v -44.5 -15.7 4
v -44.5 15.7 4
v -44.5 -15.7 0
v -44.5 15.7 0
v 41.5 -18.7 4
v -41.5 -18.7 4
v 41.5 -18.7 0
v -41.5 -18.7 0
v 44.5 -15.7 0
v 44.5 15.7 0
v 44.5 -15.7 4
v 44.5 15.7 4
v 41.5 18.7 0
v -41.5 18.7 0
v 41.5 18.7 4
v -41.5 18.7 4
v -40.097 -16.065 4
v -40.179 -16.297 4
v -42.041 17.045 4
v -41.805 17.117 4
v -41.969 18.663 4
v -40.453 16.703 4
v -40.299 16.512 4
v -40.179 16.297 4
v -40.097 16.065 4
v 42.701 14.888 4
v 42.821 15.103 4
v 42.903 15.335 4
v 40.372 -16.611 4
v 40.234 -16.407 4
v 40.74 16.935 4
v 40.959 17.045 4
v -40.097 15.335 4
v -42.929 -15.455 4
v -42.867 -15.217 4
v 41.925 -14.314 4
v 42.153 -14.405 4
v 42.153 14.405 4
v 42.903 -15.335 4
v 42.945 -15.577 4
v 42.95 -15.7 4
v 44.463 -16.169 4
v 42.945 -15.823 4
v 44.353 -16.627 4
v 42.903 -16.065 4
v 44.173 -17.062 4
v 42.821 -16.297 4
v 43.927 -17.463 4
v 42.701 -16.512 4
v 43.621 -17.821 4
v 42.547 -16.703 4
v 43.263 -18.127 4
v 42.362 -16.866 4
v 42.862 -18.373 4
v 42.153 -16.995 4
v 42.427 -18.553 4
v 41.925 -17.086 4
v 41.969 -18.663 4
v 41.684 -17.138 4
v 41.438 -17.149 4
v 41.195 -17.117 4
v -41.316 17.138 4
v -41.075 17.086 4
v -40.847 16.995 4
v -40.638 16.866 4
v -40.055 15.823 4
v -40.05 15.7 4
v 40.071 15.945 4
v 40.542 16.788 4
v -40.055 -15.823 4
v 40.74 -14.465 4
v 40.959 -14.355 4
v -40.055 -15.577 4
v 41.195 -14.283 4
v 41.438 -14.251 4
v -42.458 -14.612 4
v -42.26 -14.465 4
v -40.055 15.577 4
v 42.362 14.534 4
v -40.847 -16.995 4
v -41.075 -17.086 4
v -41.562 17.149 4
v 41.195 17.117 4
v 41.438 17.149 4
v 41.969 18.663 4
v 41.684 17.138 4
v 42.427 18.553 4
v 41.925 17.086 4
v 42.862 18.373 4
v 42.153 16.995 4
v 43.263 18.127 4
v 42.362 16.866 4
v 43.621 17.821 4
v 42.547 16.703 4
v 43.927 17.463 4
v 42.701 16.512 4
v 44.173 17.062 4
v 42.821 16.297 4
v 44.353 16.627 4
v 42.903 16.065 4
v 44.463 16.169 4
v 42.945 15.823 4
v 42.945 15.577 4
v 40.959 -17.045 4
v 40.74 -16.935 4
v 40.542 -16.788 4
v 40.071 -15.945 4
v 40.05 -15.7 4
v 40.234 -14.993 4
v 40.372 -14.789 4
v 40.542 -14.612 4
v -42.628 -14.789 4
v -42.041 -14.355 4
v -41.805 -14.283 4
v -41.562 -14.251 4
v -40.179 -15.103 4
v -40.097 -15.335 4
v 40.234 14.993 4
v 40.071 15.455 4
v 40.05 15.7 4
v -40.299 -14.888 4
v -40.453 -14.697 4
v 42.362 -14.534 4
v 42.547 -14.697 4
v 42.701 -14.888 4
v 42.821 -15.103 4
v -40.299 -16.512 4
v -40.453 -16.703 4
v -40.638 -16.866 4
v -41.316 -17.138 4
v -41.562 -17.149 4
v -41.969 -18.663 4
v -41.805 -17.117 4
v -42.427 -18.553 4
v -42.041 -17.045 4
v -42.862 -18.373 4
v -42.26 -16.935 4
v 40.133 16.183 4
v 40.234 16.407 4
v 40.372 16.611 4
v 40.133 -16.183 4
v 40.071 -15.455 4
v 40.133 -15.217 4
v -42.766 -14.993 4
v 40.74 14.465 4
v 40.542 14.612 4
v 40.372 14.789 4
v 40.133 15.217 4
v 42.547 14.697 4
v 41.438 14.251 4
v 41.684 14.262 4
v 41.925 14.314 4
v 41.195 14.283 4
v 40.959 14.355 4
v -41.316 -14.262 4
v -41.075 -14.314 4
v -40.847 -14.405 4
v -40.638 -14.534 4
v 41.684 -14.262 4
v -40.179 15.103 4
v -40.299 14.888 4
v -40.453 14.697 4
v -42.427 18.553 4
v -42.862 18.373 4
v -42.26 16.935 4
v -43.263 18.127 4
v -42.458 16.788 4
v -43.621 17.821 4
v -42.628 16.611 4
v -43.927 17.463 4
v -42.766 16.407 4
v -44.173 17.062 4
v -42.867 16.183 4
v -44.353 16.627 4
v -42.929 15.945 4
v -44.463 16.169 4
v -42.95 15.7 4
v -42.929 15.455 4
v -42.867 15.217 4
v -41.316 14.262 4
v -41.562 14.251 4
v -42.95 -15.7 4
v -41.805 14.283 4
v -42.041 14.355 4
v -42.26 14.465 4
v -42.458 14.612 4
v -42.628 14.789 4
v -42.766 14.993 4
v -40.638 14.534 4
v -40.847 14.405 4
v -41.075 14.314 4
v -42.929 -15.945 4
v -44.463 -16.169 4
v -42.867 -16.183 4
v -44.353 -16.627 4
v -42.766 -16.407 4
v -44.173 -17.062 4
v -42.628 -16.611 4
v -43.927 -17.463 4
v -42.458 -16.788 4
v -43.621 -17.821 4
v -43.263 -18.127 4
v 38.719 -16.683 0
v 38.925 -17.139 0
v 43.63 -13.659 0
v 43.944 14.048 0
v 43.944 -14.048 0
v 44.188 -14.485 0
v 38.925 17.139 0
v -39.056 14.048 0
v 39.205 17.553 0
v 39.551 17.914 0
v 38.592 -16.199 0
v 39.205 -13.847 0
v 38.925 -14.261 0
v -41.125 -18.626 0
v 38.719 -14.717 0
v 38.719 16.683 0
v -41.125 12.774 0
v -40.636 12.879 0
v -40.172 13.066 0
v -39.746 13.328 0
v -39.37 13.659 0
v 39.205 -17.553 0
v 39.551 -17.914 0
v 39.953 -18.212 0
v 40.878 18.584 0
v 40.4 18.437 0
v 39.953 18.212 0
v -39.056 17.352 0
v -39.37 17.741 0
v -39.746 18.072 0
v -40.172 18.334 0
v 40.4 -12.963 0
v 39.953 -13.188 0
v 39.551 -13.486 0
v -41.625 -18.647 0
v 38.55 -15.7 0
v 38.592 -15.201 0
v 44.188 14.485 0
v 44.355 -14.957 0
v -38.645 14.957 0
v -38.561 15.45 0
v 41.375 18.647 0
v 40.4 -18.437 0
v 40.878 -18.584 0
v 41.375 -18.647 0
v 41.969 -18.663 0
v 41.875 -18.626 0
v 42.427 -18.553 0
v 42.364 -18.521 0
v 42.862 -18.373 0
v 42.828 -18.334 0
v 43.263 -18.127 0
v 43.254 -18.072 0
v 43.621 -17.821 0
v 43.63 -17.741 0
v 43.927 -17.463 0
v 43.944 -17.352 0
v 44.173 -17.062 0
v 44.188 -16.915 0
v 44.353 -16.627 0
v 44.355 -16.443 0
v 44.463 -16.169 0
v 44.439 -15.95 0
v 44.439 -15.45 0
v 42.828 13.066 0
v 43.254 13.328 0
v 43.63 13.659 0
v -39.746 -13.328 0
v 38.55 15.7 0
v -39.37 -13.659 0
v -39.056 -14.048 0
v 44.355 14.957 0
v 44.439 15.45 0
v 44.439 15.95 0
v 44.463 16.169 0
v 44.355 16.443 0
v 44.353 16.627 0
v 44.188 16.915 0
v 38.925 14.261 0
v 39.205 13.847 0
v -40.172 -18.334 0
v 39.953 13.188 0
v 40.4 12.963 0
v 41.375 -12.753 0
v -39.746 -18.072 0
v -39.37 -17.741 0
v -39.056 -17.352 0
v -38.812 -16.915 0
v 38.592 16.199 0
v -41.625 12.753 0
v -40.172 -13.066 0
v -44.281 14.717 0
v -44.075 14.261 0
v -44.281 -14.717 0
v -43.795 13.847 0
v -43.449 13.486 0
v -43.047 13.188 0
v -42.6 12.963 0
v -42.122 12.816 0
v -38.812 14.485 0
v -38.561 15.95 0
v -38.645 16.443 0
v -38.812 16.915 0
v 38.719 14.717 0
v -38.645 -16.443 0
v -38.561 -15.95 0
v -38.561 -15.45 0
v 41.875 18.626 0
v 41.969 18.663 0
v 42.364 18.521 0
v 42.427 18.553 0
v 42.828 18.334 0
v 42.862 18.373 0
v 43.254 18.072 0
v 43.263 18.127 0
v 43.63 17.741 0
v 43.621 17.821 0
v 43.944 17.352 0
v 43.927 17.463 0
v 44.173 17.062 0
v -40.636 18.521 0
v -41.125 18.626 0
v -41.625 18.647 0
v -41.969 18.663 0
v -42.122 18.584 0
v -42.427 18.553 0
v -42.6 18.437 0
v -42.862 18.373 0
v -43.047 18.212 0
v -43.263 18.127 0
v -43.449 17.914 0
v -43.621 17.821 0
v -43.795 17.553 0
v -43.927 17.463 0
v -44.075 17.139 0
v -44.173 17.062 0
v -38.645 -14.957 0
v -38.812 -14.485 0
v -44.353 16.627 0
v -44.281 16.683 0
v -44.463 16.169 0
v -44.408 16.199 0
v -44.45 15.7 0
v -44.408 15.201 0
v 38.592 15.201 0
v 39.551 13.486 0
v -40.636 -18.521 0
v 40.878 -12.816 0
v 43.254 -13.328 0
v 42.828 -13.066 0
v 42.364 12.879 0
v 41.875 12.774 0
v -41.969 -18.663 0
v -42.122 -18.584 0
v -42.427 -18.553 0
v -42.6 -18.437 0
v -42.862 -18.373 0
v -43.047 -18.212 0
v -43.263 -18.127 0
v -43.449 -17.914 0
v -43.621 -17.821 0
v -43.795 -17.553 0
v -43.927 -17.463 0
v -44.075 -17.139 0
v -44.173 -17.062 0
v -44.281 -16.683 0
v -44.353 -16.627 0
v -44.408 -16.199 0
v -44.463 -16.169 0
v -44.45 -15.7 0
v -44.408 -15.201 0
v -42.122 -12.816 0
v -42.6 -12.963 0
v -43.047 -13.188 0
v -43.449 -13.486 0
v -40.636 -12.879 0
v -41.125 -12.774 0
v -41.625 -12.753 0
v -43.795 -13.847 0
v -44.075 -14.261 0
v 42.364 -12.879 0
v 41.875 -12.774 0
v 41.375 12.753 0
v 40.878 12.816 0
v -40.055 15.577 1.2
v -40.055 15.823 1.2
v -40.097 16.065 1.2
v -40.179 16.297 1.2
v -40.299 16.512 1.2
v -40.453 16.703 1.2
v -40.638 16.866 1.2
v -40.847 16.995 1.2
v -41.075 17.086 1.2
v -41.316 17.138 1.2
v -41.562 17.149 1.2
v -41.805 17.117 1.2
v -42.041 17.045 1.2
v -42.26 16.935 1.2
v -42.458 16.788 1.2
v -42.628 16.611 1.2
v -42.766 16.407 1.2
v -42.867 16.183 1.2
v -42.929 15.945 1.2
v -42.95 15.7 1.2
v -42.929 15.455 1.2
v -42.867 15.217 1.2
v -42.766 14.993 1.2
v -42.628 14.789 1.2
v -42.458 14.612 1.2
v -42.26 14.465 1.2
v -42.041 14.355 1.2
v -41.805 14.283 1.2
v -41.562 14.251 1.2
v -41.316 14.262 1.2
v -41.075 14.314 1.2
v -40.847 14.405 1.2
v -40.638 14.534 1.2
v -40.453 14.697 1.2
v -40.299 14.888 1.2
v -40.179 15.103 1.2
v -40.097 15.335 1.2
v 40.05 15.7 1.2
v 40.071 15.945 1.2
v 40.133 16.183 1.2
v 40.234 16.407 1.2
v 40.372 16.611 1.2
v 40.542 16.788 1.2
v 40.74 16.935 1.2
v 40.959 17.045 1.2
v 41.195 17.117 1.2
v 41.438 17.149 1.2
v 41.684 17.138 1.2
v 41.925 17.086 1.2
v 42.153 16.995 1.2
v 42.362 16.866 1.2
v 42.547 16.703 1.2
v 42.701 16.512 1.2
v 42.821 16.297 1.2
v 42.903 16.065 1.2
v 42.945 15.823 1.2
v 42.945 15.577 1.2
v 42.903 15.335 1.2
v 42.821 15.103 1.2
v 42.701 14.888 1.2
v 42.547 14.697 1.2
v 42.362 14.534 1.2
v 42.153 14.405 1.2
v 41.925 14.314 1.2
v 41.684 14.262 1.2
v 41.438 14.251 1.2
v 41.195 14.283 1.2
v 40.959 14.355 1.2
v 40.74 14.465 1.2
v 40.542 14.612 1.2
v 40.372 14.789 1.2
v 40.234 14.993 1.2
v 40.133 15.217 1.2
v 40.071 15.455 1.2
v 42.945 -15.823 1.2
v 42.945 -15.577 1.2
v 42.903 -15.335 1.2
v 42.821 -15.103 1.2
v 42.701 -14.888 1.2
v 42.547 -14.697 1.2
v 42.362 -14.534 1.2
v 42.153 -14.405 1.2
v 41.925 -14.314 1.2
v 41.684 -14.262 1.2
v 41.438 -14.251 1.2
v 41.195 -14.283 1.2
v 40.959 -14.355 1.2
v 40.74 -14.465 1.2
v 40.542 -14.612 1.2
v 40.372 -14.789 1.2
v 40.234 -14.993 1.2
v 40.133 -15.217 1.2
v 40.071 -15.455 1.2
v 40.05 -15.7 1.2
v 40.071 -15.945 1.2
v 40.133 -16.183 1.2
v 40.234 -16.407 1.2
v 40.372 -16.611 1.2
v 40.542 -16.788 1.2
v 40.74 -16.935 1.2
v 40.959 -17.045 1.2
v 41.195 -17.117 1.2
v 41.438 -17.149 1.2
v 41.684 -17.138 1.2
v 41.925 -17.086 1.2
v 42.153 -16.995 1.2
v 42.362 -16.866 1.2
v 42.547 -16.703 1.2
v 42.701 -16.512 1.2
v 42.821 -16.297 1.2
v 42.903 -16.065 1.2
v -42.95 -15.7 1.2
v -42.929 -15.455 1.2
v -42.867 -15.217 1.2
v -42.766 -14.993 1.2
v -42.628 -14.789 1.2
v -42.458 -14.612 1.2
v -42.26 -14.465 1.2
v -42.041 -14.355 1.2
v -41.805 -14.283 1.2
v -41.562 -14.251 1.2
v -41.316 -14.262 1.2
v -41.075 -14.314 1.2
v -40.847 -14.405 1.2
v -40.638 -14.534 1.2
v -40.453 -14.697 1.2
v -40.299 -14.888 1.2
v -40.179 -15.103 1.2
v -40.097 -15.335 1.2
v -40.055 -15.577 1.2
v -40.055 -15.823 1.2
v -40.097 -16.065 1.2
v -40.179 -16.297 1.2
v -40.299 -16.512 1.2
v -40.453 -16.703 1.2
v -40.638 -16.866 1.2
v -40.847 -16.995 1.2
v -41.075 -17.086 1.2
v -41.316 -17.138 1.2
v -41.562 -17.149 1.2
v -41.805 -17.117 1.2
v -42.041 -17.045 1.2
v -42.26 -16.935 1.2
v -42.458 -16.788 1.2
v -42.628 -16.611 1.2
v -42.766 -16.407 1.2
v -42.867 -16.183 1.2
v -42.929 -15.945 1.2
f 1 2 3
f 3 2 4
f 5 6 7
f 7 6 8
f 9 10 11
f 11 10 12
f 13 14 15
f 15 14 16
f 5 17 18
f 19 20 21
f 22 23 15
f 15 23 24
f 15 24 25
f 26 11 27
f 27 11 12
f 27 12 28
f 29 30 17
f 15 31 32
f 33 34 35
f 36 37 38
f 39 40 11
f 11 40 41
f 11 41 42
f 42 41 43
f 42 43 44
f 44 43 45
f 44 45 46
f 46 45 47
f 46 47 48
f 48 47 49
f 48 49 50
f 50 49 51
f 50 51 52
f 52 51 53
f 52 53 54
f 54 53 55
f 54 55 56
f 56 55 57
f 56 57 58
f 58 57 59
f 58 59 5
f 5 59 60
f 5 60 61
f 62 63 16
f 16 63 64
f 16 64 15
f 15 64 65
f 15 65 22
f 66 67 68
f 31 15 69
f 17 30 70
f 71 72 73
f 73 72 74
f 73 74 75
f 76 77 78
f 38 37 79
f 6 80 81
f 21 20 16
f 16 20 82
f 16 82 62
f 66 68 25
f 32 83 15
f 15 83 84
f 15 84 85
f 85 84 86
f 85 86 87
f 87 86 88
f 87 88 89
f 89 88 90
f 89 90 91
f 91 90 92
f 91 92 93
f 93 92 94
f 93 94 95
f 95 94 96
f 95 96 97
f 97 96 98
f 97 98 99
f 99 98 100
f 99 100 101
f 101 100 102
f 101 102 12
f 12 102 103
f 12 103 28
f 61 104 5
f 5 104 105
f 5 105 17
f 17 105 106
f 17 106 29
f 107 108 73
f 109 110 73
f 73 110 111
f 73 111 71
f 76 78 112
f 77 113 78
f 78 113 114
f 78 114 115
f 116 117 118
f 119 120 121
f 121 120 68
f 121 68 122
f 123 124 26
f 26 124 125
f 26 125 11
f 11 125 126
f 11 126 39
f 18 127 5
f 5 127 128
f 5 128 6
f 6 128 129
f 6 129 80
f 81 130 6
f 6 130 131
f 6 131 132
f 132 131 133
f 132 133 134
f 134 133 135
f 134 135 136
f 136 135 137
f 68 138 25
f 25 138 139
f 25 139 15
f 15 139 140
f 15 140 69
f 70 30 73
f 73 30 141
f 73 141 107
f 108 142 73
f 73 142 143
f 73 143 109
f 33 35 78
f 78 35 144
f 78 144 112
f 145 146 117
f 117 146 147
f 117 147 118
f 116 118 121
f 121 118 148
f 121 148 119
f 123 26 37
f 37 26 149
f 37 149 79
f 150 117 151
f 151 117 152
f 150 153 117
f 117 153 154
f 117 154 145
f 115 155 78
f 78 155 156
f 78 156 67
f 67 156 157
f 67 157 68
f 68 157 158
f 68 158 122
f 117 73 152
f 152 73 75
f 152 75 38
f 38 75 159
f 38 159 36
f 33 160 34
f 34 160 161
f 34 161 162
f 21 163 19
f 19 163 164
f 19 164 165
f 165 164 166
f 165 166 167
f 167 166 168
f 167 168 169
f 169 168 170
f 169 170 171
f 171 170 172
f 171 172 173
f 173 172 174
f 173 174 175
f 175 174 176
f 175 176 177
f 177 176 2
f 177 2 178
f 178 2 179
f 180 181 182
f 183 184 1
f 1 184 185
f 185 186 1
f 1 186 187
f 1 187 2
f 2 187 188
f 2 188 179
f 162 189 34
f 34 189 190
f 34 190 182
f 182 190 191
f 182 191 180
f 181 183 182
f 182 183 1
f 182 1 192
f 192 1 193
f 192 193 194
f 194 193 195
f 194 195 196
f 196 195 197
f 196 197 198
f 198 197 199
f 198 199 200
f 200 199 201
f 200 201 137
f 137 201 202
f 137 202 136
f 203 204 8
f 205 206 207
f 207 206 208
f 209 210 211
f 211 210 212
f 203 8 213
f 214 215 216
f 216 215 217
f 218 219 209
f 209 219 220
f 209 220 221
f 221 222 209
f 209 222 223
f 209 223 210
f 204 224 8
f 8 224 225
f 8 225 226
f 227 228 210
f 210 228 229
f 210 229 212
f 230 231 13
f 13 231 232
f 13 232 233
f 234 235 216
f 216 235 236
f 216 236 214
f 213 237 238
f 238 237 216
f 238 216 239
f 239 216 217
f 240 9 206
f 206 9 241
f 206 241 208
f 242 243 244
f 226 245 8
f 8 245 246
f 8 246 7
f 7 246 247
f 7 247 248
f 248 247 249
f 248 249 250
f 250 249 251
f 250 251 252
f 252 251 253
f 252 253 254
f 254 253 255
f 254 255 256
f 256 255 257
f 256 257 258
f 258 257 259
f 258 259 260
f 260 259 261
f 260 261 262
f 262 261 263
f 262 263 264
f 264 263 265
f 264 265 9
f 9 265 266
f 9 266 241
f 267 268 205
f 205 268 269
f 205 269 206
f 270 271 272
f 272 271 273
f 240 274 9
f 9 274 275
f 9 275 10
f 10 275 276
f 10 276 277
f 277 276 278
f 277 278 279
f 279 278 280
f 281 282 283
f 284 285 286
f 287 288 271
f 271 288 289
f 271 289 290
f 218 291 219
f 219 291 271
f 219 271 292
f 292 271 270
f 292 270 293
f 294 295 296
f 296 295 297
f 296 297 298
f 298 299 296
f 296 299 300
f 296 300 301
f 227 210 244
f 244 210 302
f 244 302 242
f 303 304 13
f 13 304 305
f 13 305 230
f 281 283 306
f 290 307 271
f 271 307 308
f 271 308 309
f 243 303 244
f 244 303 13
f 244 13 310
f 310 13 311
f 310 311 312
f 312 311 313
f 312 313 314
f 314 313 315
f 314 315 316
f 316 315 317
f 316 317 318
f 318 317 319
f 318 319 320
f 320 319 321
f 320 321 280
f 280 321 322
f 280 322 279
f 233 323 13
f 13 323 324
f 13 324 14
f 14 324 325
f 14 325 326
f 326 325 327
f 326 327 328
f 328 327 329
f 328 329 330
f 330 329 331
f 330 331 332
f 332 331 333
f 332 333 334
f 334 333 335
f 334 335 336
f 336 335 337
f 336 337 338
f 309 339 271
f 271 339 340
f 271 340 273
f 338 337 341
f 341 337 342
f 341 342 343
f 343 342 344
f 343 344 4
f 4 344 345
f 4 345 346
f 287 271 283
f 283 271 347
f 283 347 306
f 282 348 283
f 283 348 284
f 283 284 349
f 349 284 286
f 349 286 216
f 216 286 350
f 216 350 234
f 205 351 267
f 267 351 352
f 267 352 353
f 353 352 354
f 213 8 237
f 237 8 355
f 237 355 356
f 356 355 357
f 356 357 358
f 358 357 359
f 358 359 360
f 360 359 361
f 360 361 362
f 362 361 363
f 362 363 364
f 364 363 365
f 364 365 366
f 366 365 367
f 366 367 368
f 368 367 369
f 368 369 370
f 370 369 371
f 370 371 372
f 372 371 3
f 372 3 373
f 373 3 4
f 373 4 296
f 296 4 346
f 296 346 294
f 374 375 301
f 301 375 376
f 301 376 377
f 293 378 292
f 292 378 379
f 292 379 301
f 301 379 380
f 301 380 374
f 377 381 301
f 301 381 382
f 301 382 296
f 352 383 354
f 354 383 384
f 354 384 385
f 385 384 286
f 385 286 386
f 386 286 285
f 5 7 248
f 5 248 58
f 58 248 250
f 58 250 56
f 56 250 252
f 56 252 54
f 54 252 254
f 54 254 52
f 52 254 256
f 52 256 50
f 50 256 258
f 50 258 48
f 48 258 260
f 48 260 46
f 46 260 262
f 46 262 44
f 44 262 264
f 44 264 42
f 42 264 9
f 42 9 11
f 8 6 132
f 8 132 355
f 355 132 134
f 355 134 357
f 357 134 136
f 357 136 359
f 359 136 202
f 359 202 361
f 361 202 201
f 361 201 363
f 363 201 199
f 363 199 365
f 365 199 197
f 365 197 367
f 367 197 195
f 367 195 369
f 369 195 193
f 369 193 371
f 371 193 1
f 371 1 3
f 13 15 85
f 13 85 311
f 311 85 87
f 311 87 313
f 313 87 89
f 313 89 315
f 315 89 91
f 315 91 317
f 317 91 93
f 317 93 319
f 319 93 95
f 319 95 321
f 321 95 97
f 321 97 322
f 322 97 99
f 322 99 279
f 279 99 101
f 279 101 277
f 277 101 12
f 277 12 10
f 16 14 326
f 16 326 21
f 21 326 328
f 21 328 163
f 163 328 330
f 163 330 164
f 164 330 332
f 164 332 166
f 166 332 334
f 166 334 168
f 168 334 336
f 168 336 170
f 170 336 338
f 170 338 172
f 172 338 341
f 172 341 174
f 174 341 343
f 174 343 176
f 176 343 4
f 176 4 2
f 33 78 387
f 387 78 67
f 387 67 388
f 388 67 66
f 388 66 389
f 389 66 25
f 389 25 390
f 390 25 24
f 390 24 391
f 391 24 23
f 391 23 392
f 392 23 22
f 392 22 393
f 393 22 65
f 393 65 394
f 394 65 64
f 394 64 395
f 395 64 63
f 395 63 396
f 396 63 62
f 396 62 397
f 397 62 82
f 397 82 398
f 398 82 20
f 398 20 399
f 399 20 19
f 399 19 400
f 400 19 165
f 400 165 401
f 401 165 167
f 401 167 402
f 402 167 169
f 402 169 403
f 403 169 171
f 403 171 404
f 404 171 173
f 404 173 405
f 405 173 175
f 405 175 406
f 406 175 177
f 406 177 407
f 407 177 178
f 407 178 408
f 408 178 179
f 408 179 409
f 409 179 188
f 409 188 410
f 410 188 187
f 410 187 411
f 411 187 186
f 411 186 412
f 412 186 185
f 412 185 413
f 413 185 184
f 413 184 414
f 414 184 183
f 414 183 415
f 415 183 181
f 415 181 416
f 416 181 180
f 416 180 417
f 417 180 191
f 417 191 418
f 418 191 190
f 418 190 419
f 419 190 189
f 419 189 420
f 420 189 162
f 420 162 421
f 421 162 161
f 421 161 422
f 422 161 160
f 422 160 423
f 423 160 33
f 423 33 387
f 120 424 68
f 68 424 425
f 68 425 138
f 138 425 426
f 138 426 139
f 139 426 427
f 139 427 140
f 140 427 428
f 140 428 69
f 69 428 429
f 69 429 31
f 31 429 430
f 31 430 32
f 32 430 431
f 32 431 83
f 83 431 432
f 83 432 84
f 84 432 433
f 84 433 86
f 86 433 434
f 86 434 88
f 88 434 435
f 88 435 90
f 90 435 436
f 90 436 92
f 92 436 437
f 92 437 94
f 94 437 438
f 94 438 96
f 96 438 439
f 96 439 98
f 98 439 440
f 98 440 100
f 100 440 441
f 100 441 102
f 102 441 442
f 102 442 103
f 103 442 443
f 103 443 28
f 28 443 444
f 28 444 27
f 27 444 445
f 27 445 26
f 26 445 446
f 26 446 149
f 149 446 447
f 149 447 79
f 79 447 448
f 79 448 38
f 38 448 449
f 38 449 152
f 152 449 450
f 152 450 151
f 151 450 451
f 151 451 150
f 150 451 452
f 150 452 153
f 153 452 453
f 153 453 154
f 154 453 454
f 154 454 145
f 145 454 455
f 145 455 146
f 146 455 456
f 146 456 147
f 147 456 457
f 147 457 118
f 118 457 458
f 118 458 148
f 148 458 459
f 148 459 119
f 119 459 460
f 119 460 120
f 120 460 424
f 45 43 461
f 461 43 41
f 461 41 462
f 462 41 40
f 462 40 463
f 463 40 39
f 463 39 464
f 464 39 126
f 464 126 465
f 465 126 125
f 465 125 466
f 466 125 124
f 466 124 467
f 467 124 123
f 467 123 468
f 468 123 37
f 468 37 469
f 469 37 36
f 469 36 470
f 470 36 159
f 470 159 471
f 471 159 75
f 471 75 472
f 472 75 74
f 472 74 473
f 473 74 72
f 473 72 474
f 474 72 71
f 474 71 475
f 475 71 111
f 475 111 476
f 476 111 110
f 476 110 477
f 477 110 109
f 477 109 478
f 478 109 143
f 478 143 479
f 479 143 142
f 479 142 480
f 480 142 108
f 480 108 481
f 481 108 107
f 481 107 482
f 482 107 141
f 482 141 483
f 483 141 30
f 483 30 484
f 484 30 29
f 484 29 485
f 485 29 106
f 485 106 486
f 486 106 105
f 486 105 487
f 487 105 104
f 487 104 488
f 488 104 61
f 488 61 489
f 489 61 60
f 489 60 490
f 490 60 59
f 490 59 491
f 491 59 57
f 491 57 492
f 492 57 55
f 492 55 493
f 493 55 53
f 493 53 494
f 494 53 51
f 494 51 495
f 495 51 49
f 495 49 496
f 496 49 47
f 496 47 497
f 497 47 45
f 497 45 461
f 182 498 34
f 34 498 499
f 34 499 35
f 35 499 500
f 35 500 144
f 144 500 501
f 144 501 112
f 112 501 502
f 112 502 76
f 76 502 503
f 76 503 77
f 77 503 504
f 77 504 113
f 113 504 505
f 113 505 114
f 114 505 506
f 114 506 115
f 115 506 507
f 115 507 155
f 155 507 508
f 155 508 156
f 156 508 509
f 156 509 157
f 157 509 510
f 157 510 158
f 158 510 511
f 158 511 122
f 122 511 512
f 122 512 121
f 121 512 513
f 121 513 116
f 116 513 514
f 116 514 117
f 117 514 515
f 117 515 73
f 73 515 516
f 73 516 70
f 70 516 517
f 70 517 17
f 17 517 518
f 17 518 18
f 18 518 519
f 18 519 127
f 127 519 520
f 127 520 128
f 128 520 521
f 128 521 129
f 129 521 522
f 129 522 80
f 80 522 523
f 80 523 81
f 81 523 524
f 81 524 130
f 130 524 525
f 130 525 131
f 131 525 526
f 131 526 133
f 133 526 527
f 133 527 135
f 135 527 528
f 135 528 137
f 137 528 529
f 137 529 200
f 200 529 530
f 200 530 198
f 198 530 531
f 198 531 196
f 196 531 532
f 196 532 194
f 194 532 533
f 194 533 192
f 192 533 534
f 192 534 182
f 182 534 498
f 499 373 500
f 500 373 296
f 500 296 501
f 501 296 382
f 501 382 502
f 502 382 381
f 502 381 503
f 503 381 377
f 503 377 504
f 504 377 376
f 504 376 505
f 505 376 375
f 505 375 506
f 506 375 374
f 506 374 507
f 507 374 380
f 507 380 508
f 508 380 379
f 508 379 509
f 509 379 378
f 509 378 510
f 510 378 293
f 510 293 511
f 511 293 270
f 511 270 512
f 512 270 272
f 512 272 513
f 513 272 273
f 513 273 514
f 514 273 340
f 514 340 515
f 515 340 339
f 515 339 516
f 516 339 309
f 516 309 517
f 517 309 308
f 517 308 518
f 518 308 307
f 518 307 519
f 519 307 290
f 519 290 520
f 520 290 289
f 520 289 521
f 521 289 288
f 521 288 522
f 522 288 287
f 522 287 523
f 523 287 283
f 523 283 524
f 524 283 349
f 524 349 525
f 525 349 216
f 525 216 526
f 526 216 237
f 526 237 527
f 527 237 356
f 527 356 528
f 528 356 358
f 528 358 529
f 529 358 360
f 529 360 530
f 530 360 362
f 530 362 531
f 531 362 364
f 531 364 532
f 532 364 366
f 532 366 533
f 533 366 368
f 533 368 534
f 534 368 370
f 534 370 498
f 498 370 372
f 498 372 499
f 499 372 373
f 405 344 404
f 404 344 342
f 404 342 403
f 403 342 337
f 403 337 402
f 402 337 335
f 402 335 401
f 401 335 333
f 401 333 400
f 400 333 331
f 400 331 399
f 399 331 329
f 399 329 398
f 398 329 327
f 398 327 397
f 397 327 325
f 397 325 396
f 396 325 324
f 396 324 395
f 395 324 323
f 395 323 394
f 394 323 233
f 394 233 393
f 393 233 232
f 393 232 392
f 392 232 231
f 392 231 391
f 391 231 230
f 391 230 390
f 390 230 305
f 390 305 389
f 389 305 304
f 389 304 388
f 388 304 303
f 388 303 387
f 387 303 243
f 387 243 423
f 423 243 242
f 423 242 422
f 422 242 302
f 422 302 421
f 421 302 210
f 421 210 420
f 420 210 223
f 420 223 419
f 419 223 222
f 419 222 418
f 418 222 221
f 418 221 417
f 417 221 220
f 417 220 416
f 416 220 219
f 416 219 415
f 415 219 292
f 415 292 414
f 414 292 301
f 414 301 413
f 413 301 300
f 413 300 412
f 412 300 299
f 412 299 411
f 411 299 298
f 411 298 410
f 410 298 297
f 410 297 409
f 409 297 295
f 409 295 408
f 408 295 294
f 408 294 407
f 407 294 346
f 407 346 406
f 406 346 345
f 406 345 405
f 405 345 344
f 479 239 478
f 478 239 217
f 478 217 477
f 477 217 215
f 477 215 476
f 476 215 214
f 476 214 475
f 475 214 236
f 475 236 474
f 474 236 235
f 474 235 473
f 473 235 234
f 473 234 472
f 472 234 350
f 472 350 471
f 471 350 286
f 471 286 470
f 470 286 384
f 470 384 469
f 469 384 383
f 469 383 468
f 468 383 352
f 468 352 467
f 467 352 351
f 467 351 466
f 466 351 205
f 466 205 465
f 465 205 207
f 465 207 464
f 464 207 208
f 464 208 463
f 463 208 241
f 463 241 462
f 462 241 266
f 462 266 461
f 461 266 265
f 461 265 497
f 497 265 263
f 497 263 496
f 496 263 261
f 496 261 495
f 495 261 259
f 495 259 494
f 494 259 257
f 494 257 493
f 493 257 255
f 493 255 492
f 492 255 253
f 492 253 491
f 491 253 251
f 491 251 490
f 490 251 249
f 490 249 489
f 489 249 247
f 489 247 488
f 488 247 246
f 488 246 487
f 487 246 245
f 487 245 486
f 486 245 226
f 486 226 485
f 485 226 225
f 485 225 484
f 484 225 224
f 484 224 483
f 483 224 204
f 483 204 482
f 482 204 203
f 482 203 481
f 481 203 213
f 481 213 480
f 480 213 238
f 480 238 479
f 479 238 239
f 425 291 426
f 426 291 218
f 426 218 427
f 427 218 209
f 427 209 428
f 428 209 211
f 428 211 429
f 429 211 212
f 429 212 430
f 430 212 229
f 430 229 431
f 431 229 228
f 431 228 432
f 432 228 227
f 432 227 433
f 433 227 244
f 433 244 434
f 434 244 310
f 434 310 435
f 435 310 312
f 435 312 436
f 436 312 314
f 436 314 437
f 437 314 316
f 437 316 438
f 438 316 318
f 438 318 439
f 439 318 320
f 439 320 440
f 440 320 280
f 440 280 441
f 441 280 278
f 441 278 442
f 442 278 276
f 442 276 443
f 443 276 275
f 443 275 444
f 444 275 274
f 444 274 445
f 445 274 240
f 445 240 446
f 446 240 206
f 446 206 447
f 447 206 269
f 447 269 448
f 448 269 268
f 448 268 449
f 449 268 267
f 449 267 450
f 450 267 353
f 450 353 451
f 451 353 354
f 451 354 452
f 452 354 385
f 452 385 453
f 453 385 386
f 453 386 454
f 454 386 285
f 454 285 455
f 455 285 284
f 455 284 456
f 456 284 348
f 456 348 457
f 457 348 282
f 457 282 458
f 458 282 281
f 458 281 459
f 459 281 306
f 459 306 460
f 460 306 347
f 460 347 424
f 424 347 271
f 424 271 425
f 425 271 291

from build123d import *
from OCP.BRepFilletAPI import BRepFilletAPI_MakeChamfer

# Parameters (mm, degrees)
SKETCH_1_W          = 89
SKETCH_1_H          = 37.4
EXTRUDE_1_DEPTH     = 4
FILLET_1_R          = 3
SKETCH_2_R          = 1.45
CUT_EXTRUDE_3_DEPTH = 4
CHAMFER_1_SIZE      = 1.2
CHAMFER_1_SIZE2     = 1.5


with BuildPart() as part:
    # 스케치1 → 보스-돌출1 (new body)
    with BuildSketch(Plane.XY):
        Rectangle(SKETCH_1_W, SKETCH_1_H)
    extrude(amount=EXTRUDE_1_DEPTH)

    # 필렛1
    fillet_1_edges = [part.edges().sort_by_distance(p)[0] for p in [
        (-44.5, -18.7, 2),
        (44.5, -18.7, 2),
        (44.5, 18.7, 2),
        (-44.5, 18.7, 2),
    ]]
    fillet(fillet_1_edges, radius=FILLET_1_R)

    # 스케치2 → 컷-돌출3 (cut)
    with BuildSketch(Plane.XY):
        with Locations((-41.5, 15.7)):
            Circle(SKETCH_2_R)
        with Locations(Location((41.5, 15.7, 0), (0, 0, 180))):
            Circle(SKETCH_2_R)
        with Locations((41.5, -15.7)):
            Circle(SKETCH_2_R)
        with Locations(Location((-41.5, -15.7, 0), (0, 0, 180))):
            Circle(SKETCH_2_R)
    extrude(amount=CUT_EXTRUDE_3_DEPTH, mode=Mode.SUBTRACT)

    # 모따기1: one chamfer whose edges measure the first distance from different faces: ONE call of the kernel's chamfer builder (chamfer() names one face for all edges)
    chamfer_1_edges_1 = [part.edges().sort_by_distance(p)[0] for p in [
        (-40.05, -15.7, 0),
    ]]
    chamfer_1_side_1 = [part.faces().sort_by_distance(p)[0] for p in [
        (-40.05, -15.7, 2),
    ]]
    chamfer_1_edges_2 = [part.edges().sort_by_distance(p)[0] for p in [
        (40.05, -15.7, 0),
    ]]
    chamfer_1_side_2 = [part.faces().sort_by_distance(p)[0] for p in [
        (40.05, -15.7, 2),
    ]]
    chamfer_1_edges_3 = [part.edges().sort_by_distance(p)[0] for p in [
        (42.95, 15.7, 0),
    ]]
    chamfer_1_side_3 = [part.faces().sort_by_distance(p)[0] for p in [
        (42.95, 15.7, 2),
    ]]
    chamfer_1_edges_4 = [part.edges().sort_by_distance(p)[0] for p in [
        (-42.95, 15.7, 0),
    ]]
    chamfer_1_side_4 = [part.faces().sort_by_distance(p)[0] for p in [
        (-42.95, 15.7, 2),
    ]]
    chamfer_1 = BRepFilletAPI_MakeChamfer(part.part.solid().wrapped)
    for e in chamfer_1_edges_1:
        chamfer_1.Add(CHAMFER_1_SIZE, CHAMFER_1_SIZE2, e.wrapped, chamfer_1_side_1[0].wrapped)  # the first distance lies on this face
    for e in chamfer_1_edges_2:
        chamfer_1.Add(CHAMFER_1_SIZE, CHAMFER_1_SIZE2, e.wrapped, chamfer_1_side_2[0].wrapped)  # the first distance lies on this face
    for e in chamfer_1_edges_3:
        chamfer_1.Add(CHAMFER_1_SIZE, CHAMFER_1_SIZE2, e.wrapped, chamfer_1_side_3[0].wrapped)  # the first distance lies on this face
    for e in chamfer_1_edges_4:
        chamfer_1.Add(CHAMFER_1_SIZE, CHAMFER_1_SIZE2, e.wrapped, chamfer_1_side_4[0].wrapped)  # the first distance lies on this face
    add(Compound.cast(chamfer_1.Shape()), mode=Mode.REPLACE)


solid = part.part
